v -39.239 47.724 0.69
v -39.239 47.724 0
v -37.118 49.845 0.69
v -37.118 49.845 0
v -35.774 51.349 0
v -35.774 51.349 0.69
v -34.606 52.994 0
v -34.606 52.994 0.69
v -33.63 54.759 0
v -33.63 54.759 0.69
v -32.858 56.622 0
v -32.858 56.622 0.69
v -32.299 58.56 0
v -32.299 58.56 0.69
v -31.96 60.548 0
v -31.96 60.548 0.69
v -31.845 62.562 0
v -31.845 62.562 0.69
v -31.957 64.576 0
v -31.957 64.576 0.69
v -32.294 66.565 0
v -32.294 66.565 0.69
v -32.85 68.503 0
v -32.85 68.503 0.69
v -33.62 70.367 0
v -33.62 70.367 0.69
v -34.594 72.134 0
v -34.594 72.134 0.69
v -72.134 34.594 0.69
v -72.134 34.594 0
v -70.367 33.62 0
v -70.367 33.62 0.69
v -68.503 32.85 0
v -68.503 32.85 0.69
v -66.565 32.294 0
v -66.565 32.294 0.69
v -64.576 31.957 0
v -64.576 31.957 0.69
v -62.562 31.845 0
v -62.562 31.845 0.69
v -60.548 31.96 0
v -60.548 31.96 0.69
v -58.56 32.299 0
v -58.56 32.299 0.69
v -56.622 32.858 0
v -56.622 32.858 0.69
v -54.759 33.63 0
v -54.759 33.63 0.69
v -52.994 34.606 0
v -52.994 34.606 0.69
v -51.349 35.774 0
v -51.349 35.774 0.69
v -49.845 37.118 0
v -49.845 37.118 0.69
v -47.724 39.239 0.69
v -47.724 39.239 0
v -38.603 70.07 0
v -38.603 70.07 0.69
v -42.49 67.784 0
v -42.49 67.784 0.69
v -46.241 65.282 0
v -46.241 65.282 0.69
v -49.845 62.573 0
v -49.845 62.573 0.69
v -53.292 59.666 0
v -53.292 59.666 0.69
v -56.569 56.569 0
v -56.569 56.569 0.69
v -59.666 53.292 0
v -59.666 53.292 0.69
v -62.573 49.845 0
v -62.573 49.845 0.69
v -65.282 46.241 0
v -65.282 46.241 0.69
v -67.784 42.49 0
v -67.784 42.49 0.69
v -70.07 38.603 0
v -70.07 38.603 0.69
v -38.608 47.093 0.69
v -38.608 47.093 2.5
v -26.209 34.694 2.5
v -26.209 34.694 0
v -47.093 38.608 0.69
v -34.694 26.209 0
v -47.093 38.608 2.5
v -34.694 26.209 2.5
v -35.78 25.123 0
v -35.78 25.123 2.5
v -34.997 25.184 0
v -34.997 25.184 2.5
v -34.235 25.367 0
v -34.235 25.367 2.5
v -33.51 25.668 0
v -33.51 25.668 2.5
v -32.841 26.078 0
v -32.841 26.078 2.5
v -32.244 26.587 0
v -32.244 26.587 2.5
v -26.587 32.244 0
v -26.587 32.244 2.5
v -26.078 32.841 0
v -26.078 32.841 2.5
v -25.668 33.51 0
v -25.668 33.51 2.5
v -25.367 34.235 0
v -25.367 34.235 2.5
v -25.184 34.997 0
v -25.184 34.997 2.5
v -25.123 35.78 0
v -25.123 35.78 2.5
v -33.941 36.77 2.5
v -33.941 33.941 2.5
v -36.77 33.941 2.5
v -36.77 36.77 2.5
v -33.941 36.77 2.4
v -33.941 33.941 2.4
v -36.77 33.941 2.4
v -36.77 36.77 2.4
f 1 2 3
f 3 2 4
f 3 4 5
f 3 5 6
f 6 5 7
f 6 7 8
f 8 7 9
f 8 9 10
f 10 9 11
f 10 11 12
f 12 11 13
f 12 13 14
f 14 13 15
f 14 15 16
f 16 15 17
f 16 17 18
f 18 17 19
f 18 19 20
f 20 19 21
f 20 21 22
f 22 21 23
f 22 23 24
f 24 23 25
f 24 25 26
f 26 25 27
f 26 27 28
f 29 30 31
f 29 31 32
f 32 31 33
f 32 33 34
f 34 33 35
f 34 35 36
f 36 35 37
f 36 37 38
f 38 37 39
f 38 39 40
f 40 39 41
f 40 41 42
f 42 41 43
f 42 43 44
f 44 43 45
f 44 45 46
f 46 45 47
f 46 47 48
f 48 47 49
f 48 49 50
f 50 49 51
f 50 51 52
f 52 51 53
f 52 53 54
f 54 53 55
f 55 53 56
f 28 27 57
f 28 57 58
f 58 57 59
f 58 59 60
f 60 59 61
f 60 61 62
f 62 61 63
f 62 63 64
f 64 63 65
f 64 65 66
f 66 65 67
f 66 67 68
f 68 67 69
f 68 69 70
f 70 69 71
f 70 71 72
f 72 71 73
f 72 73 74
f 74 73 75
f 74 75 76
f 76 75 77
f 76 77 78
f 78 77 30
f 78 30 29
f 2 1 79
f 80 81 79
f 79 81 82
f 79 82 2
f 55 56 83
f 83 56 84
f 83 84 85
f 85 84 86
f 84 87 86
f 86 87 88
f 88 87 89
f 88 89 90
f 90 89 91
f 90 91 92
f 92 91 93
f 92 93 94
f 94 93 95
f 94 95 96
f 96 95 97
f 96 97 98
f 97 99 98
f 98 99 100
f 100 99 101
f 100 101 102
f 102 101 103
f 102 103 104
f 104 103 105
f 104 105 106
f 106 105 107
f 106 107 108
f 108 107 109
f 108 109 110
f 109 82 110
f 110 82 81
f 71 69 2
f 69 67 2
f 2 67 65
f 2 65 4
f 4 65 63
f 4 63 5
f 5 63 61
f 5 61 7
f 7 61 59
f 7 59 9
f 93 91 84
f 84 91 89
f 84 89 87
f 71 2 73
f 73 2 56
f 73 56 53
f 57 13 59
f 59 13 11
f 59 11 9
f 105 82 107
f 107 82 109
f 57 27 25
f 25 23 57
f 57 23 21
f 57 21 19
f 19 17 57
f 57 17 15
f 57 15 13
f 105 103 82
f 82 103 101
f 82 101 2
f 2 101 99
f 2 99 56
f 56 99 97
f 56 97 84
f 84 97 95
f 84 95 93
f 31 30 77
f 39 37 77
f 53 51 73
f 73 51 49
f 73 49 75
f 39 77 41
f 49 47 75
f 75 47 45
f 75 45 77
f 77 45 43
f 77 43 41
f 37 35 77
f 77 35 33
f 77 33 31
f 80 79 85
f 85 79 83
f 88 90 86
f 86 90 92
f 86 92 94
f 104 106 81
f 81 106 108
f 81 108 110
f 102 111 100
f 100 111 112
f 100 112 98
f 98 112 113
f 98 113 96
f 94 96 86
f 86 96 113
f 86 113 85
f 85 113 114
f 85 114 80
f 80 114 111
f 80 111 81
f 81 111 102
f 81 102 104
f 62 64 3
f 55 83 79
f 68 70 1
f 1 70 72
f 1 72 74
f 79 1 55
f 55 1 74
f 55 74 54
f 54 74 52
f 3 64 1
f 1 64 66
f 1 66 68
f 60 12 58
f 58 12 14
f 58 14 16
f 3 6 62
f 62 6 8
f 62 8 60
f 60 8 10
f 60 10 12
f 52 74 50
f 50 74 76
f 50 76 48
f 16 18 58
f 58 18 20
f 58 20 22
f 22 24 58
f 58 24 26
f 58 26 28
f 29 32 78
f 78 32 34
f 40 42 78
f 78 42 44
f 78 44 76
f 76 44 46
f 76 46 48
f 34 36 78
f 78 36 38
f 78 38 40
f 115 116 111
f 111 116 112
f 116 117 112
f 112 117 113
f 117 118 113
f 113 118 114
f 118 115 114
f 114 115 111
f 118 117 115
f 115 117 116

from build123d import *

# Parameters (mm, degrees)
BOSS_EXTRUDE2_DEPTH = 5
CUT_EXTRUDE1_START  = 5
SKETCH3_W           = 19.008841094
SKETCH3_H           = 2.1
SKETCH3_W_2         = 12
SKETCH3_W_3         = 1.535533906
SKETCH3_W_4         = 1.464466094
SKETCH3_W_5         = 17.544375
CUT_EXTRUDE1_DEPTH  = 16
CUT_EXTRUDE2_DEPTH  = 52
SKETCH5_W           = 1.05
SKETCH5_H           = 46.149322856
CUT_EXTRUDE3_DEPTH  = 10
CUT_EXTRUDE4_START  = -0.76
CUT_EXTRUDE4_DEPTH  = 0.76
SKETCH7_W           = 2.828427125
SKETCH7_H           = 2.828427125
CUT_EXTRUDE5_DEPTH  = 0.1


with BuildPart() as part:
    # Sketch1 → Boss-Extrude2 (new body)
    with BuildSketch(Plane.XY):
        Polygon((-39.238867065, 47.72414844), (-47.72414844, 39.238867065), (-34.69381669, 26.208535316), (-26.208535316, 34.69381669), align=None)
        with BuildLine():
            ThreePointArc((-49.845468783, 62.573390845), (-56.568542495, 56.568542495), (-62.573390845, 49.845468783))
            Line((-62.573390845, 49.845468783), (-49.845468783, 37.117546722))
            Line((-49.845468783, 37.117546722), (-47.72414844, 39.238867065))
            Line((-47.72414844, 39.238867065), (-39.238867065, 47.72414844))
            Line((-39.238867065, 47.72414844), (-37.117546722, 49.845468783))
            Line((-37.117546722, 49.845468783), (-49.845468783, 62.573390845))
        make_face()
        with BuildLine():
            ThreePointArc((-34.594119865, 72.133534994), (-42.489529555, 67.783772971), (-49.845468783, 62.573390845))
            Line((-49.845468783, 62.573390845), (-37.117546722, 49.845468783))
            ThreePointArc((-37.117546722, 49.845468783), (-31.959737739, 60.548390845), (-34.594119865, 72.133534994))
        make_face()
        with BuildLine():
            ThreePointArc((-62.573390845, 49.845468783), (-67.783772971, 42.489529555), (-72.133534994, 34.594119865))
            ThreePointArc((-72.133534994, 34.594119865), (-60.548390845, 31.959737739), (-49.845468783, 37.117546722))
            Line((-49.845468783, 37.117546722), (-62.573390845, 49.845468783))
        make_face()
        with BuildLine():
            Line((-34.69381669, 26.208535316), (-35.779603128, 25.122748879))
            ThreePointArc((-35.779603128, 25.122748879), (-33.866185966, 25.503351216), (-32.244069222, 26.587214973))
            Line((-32.244069222, 26.587214973), (-26.587214973, 32.244069222))
            ThreePointArc((-26.587214973, 32.244069222), (-25.503351216, 33.866185966), (-25.122748879, 35.779603128))
            Line((-25.122748879, 35.779603128), (-26.208535316, 34.69381669))
            Line((-26.208535316, 34.69381669), (-34.69381669, 26.208535316))
        make_face()
    extrude(amount=BOSS_EXTRUDE2_DEPTH)

    # Sketch3 → Cut-Extrude1 (cut)
    with BuildSketch(Plane(origin=(-57.699913345, 57.699913345, 0), x_dir=(-0.707106781186549, -0.7071067811865461, 0), z_dir=(0.7071067811865461, -0.707106781186549, 0)).offset(CUT_EXTRUDE1_START)):
        with Locations((-17.039954453, -2.5)):
            Rectangle(SKETCH3_W, SKETCH3_H)
        with Locations((0, -2.5)):
            Rectangle(SKETCH3_W_2, SKETCH3_H)
        with Locations((-6.767766953, -2.5)):
            Rectangle(SKETCH3_W_3, SKETCH3_H)
        with Locations((6.767766953, -2.5)):
            Rectangle(SKETCH3_W_3, SKETCH3_H)
        with Locations((8.267766953, -2.5)):
            Rectangle(SKETCH3_W_4, SKETCH3_H)
        with Locations((17.7721875, -2.5)):
            Rectangle(SKETCH3_W_5, SKETCH3_H)
    extrude(amount=CUT_EXTRUDE1_DEPTH, mode=Mode.SUBTRACT)

    # Sketch4 → Cut-Extrude2 (cut)
    with BuildSketch(Plane(origin=(-57.699913345, 57.699913345, 0), x_dir=(-0.707106781186549, -0.7071067811865461, 0), z_dir=(0.7071067811865461, -0.707106781186549, 0))):
        Polygon((-7.535533906, -2.5), (27.054152634, -2.5), (27.054152634, -6.972921607), (-28.074504585, -6.972921607), (-28.074504585, -2.5), align=None)
    extrude(amount=CUT_EXTRUDE2_DEPTH, mode=Mode.SUBTRACT)

    # Sketch5 → Cut-Extrude3 (cut)
    with BuildSketch(Plane(origin=(-54.164379439, 54.164379439, 0), x_dir=(0, 0, -1), z_dir=(0.7071067811865461, -0.7071067811865489, 0))):
        with Locations((-1.975, 0)):
            Rectangle(SKETCH5_W, SKETCH5_H)
    extrude(amount=-CUT_EXTRUDE3_DEPTH, mode=Mode.SUBTRACT)

    # Sketch6 → Cut-Extrude4 (cut)
    with BuildSketch(Plane.XY.offset(1.45).offset(CUT_EXTRUDE4_START)):
        with BuildLine():
            Line((-47.72414844, 39.238867065), (-49.845468783, 37.117546722))
            ThreePointArc((-49.845468783, 37.117546722), (-60.548390845, 31.959737739), (-72.133534994, 34.594119865))
            ThreePointArc((-72.133534994, 34.594119865), (-56.568542495, 56.568542495), (-34.594119865, 72.133534994))
            ThreePointArc((-34.594119865, 72.133534994), (-31.959737739, 60.548390845), (-37.117546722, 49.845468783))
            Line((-37.117546722, 49.845468783), (-39.238867065, 47.72414844))
            Line((-39.238867065, 47.72414844), (-38.608030253, 47.093311627))
            Line((-38.608030253, 47.093311627), (-47.093311627, 38.608030253))
            Line((-47.093311627, 38.608030253), (-47.72414844, 39.238867065))
        make_face()
    extrude(amount=CUT_EXTRUDE4_DEPTH, mode=Mode.SUBTRACT)

    # Sketch7 → Cut-Extrude5 (cut)
    with BuildSketch(Plane.XY.offset(2.5)):
        with Locations((-35.355339059, 35.355339059)):
            Rectangle(SKETCH7_W, SKETCH7_H)
    extrude(amount=-CUT_EXTRUDE5_DEPTH, mode=Mode.SUBTRACT)


solid = part.part
